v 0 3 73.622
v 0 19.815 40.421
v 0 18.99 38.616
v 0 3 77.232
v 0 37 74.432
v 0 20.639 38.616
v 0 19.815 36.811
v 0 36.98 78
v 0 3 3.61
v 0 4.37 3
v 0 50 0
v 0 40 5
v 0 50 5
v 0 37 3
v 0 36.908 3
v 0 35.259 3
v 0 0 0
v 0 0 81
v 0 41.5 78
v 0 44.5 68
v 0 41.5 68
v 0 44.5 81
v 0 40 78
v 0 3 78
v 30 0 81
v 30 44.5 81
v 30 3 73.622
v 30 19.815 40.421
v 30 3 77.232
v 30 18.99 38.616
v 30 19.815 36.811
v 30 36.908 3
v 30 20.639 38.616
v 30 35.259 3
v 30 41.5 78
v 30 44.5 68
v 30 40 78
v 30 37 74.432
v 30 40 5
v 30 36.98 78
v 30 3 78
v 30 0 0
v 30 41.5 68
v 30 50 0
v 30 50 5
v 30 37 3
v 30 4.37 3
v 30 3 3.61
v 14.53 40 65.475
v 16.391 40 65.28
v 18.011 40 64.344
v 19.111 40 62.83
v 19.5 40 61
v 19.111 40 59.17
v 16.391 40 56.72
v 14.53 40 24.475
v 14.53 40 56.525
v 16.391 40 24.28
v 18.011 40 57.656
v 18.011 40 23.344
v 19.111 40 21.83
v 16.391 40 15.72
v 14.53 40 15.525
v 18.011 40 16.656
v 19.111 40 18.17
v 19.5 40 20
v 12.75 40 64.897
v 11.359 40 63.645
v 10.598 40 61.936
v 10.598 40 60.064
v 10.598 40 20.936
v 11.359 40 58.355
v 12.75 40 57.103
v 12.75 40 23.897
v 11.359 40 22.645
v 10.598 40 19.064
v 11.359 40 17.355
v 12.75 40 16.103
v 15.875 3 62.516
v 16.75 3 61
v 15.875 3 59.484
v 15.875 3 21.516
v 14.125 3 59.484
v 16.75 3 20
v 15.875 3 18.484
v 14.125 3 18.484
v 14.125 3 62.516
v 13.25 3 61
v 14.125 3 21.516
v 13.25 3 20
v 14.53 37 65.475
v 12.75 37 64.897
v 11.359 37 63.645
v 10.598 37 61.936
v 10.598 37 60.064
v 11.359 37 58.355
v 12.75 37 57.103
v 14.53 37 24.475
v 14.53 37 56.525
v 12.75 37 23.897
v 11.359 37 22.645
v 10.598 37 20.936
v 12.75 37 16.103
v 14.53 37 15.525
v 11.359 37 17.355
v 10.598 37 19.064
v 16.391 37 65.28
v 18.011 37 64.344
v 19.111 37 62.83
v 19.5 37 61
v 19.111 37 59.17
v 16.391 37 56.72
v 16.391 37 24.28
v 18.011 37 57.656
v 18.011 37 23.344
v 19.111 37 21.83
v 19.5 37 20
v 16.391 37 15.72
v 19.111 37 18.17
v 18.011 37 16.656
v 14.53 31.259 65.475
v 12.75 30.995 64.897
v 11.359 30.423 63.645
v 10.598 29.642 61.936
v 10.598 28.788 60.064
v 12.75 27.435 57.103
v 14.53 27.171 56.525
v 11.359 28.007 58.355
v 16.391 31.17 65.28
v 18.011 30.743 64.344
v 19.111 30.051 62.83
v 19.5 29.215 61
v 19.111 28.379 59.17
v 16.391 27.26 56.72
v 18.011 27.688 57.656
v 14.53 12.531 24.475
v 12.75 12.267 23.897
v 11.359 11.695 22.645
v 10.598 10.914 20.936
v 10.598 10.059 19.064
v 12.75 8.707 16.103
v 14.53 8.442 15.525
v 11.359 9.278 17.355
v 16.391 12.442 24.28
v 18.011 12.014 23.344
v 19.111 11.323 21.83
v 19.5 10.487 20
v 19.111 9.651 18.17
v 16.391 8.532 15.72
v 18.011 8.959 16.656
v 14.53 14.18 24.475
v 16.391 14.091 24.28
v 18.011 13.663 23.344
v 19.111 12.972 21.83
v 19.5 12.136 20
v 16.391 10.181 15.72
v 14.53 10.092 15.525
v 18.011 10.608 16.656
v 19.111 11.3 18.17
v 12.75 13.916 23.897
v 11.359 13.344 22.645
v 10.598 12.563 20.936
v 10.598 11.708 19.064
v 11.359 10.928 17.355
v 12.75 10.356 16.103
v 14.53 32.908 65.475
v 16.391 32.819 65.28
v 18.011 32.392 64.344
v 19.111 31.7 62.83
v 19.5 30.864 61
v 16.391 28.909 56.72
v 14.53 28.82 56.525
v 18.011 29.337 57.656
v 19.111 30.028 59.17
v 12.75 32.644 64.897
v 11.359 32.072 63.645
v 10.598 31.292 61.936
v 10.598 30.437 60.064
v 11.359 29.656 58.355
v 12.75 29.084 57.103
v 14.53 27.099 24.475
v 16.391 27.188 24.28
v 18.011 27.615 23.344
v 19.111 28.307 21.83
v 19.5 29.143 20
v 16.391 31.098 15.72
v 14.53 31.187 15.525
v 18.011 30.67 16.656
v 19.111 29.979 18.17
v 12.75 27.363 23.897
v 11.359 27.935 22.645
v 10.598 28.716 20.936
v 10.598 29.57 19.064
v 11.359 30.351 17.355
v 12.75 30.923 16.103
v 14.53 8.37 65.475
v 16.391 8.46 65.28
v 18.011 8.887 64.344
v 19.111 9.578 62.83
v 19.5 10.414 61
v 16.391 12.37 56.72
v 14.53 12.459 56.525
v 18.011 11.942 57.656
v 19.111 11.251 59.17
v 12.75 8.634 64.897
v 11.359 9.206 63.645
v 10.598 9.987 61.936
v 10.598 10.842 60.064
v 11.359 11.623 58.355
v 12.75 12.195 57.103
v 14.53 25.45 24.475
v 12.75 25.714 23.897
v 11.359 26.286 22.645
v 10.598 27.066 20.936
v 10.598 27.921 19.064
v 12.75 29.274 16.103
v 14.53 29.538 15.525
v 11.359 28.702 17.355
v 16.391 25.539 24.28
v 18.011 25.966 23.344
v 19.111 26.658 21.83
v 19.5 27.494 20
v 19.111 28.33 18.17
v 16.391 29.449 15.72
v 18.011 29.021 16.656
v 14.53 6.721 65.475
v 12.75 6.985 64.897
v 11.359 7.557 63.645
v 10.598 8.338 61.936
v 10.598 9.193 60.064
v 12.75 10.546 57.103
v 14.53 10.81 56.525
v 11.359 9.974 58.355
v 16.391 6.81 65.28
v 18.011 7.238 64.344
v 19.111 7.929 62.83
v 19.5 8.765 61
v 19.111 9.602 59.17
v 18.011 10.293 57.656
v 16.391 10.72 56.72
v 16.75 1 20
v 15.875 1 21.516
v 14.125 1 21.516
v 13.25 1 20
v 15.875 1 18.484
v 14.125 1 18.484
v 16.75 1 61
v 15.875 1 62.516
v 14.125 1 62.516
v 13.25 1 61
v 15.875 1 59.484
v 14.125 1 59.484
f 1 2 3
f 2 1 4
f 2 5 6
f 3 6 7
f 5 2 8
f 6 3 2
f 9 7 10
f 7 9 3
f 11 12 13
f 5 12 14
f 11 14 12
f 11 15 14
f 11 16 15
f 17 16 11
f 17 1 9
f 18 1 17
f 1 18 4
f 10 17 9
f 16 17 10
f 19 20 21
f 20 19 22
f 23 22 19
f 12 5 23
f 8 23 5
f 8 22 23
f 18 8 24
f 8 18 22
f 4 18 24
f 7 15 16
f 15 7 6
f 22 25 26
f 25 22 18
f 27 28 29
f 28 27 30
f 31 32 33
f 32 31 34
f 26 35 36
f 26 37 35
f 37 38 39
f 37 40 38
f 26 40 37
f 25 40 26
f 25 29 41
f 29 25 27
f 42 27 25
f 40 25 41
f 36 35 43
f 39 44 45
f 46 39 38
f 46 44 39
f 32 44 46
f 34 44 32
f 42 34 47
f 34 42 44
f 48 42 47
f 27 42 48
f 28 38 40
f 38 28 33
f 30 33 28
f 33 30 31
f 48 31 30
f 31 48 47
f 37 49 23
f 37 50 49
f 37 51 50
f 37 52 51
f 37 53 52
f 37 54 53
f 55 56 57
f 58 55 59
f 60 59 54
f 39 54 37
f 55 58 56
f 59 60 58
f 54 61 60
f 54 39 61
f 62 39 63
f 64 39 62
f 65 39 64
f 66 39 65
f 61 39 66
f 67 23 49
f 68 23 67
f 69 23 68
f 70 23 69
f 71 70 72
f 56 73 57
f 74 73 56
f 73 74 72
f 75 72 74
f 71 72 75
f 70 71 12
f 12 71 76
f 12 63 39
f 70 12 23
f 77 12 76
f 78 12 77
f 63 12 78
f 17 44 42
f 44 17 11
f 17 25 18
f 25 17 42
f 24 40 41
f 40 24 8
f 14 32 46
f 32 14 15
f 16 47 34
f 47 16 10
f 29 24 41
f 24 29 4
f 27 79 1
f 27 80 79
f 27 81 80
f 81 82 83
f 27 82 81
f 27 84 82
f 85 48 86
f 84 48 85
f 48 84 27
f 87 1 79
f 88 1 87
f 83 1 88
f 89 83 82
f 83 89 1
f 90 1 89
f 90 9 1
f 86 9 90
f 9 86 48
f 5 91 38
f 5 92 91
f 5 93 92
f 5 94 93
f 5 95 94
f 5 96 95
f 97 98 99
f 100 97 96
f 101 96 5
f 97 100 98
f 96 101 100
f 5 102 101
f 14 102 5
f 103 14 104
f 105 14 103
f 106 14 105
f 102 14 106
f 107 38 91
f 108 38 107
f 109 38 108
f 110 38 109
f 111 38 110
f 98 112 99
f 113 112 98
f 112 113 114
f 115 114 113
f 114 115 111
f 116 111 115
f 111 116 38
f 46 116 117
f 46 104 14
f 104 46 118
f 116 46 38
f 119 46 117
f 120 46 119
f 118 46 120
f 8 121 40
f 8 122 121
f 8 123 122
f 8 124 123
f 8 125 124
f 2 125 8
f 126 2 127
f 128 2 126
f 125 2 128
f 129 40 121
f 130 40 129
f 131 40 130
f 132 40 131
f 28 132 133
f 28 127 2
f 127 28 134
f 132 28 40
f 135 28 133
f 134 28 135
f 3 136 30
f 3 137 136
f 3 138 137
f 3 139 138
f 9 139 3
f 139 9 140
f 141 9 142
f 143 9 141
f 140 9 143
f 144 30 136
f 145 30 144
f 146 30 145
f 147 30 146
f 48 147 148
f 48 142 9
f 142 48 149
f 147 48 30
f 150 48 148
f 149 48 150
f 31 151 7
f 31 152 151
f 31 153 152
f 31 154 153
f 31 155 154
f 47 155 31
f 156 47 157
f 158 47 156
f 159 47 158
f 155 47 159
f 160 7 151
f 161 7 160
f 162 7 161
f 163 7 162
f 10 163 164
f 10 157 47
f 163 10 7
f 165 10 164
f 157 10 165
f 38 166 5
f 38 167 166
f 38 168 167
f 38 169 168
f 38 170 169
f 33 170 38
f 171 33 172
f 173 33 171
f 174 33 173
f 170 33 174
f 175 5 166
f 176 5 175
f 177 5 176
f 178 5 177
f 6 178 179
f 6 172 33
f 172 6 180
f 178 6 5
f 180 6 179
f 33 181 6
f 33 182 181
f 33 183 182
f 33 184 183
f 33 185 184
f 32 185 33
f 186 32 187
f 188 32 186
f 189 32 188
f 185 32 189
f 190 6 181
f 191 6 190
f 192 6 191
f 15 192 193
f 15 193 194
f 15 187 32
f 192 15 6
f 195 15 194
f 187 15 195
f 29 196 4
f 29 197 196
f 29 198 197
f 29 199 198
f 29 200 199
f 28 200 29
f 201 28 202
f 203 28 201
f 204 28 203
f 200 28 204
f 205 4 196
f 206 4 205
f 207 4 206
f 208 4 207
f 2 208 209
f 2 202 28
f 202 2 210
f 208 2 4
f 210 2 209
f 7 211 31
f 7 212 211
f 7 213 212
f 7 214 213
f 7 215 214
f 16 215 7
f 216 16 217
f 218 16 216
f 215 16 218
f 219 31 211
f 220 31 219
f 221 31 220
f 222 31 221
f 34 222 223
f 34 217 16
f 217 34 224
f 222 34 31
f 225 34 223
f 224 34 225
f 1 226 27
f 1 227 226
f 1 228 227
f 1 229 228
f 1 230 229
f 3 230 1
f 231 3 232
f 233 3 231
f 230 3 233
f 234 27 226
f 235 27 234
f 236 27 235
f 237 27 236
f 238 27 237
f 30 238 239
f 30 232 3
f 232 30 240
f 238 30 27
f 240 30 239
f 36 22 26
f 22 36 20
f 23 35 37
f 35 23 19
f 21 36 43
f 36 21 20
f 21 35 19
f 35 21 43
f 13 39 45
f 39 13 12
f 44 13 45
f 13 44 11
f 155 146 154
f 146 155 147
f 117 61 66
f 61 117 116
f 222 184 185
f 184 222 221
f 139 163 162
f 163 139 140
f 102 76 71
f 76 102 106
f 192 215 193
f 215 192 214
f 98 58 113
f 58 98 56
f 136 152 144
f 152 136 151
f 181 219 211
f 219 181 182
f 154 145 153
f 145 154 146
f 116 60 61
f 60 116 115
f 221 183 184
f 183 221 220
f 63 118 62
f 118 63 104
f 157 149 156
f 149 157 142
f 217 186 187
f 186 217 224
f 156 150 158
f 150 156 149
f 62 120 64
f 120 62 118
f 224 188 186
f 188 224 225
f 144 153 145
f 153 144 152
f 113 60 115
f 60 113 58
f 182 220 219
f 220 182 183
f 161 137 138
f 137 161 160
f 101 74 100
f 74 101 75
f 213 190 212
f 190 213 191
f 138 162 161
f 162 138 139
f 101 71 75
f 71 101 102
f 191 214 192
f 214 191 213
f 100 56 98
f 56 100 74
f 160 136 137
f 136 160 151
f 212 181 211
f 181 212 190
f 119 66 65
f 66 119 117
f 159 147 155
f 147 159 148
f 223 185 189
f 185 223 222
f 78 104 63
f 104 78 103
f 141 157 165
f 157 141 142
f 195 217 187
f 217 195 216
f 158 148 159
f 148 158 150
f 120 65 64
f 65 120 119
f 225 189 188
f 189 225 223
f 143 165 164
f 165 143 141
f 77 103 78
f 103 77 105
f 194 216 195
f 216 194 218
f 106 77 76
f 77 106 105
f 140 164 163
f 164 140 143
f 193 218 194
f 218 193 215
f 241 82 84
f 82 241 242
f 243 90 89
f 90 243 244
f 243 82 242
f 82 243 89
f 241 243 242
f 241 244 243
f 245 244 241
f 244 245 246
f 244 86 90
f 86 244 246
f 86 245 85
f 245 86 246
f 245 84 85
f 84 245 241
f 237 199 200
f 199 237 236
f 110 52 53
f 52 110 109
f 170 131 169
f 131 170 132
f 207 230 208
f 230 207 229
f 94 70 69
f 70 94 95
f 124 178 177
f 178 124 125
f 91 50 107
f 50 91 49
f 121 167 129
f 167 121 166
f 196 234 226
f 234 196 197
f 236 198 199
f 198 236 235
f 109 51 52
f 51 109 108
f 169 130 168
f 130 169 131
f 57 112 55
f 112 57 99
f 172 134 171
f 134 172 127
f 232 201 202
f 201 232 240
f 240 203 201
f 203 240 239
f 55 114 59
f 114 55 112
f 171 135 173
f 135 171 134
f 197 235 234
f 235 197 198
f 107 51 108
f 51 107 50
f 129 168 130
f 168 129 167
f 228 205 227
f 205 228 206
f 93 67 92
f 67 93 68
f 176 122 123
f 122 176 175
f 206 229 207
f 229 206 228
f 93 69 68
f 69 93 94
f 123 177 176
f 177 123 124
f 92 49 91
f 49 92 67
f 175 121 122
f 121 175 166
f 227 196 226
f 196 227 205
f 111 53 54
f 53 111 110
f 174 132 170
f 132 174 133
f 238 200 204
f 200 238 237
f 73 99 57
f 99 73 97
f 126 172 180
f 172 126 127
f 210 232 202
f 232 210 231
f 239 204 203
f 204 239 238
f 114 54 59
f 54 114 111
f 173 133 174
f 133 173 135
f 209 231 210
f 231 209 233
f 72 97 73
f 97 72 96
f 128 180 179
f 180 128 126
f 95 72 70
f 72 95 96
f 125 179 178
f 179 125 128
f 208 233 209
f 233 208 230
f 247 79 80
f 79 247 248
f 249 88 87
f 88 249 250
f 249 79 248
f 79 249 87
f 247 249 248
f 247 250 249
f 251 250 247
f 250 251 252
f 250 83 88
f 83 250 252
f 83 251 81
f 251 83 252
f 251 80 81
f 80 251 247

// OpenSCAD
difference() {
	difference() {
		union() {
			union() {
				union() {
					union() {
						union() {
							difference() {
								cube(size = [30, 40, 81]);
								translate(v = [0, 0, 3]) {
									translate(v = [0, 3, 0]) {
										cube(size = [30, 34, 75]);
									}
								}
							}
							translate(v = [0, 3, 0]) {
								rotate(a = [65.4495476108, 0, 0]) {
									cube(size = [30, 87.3382532486, 1.5000000000]);
								}
							}
						}
						translate(v = [0, 0, 78]) {
							translate(v = [0, 1, 0]) {
								rotate(a = [-65.4495476108, 0, 0]) {
									cube(size = [30, 84.3382532486, 1.5000000000]);
								}
							}
						}
					}
					translate(v = [0, 0, 78]) {
						translate(v = [0, 40, 0]) {
							cube(size = [30, 4.5000000000, 3]);
						}
					}
				}
				translate(v = [0, 0, 68]) {
					translate(v = [0, 41.5000000000, 0]) {
						cube(size = [30, 3, 13]);
					}
				}
			}
			translate(v = [0, 40, 0]) {
				cube(size = [30, 10, 5]);
			}
		}
		translate(v = [15, 0, 0]) {
			translate(v = [0, 0, 20]) {
				translate(v = [0, 41, 0]) {
					rotate(a = [90, 0, 0]) {
						union() {
							cylinder(d = 9, h = 37);
							cylinder(d = 3.5000000000, h = 40);
						}
					}
				}
			}
		}
	}
	translate(v = [15, 0, 0]) {
		translate(v = [0, 0, 61]) {
			translate(v = [0, 41, 0]) {
				rotate(a = [90, 0, 0]) {
					union() {
						cylinder(d = 9, h = 37);
						cylinder(d = 3.5000000000, h = 40);
					}
				}
			}
		}
	}
}
/***********************************************
*********      SolidPython code:      **********
************************************************
 
import solid as s
import solid.utils as u
import math

depth = 40
interior_height = 73
wall = 3
dwall = wall * 2
rein_wall = 1.5
drein_wall = rein_wall * 2
shelf_height = 5
shelf_depth = 10
height = interior_height + wall + shelf_height
rein_height = math.sqrt(math.pow(depth, 2) + math.pow(height, 2)) 
rein_angle = math.atan2(height, depth - wall) * (180 / math.pi)
width = 30
slot_width = 1.5
slot_cover_height = 13
screw_head = 9
screw_hole = 3.5

b = s.cube(size=(width, depth, height))
b -= u.up(wall)(u.forward(wall)(
    s.cube(size=(width, depth - dwall, height - dwall))
))

b += u.forward(wall)(s.rotate(a=(rein_angle, 0, 0))(
    s.cube(size=(width, rein_height - wall, rein_wall))
))

b += u.up(height - wall)(u.forward(wall / 2)(s.rotate(a=(-rein_angle, 0, 0))(
    s.cube(size=(width, rein_height - dwall, rein_wall))
)))

b += u.up(height - wall)(u.forward(depth)(
    s.cube(size=(width, wall + slot_width, wall))
))

b += u.up(height - slot_cover_height)(u.forward(depth + 1.5)(
    s.cube(size=(width, wall, slot_cover_height))
))

b += u.forward(depth)(
    s.cube(size=(width, shelf_depth, shelf_height))
)

b -= u.right(width / 2)(u.up(height / 4)(u.forward(depth + 1)(s.rotate(a=(90, 0, 0))(
    s.cylinder(d=screw_head, h=depth - wall) + \
    s.cylinder(d=screw_hole, h=depth)
))))

b -= u.right(width / 2)(u.up(height - height / 4)(u.forward(depth + 1)(s.rotate(a=(90, 0, 0))(
    s.cylinder(d=screw_head, h=depth - wall) + \
    s.cylinder(d=screw_hole, h=depth)
))))

final = b

s.scad_render_to_file(final, __file__.replace('.py', '.scad'))
 
 
************************************************/
